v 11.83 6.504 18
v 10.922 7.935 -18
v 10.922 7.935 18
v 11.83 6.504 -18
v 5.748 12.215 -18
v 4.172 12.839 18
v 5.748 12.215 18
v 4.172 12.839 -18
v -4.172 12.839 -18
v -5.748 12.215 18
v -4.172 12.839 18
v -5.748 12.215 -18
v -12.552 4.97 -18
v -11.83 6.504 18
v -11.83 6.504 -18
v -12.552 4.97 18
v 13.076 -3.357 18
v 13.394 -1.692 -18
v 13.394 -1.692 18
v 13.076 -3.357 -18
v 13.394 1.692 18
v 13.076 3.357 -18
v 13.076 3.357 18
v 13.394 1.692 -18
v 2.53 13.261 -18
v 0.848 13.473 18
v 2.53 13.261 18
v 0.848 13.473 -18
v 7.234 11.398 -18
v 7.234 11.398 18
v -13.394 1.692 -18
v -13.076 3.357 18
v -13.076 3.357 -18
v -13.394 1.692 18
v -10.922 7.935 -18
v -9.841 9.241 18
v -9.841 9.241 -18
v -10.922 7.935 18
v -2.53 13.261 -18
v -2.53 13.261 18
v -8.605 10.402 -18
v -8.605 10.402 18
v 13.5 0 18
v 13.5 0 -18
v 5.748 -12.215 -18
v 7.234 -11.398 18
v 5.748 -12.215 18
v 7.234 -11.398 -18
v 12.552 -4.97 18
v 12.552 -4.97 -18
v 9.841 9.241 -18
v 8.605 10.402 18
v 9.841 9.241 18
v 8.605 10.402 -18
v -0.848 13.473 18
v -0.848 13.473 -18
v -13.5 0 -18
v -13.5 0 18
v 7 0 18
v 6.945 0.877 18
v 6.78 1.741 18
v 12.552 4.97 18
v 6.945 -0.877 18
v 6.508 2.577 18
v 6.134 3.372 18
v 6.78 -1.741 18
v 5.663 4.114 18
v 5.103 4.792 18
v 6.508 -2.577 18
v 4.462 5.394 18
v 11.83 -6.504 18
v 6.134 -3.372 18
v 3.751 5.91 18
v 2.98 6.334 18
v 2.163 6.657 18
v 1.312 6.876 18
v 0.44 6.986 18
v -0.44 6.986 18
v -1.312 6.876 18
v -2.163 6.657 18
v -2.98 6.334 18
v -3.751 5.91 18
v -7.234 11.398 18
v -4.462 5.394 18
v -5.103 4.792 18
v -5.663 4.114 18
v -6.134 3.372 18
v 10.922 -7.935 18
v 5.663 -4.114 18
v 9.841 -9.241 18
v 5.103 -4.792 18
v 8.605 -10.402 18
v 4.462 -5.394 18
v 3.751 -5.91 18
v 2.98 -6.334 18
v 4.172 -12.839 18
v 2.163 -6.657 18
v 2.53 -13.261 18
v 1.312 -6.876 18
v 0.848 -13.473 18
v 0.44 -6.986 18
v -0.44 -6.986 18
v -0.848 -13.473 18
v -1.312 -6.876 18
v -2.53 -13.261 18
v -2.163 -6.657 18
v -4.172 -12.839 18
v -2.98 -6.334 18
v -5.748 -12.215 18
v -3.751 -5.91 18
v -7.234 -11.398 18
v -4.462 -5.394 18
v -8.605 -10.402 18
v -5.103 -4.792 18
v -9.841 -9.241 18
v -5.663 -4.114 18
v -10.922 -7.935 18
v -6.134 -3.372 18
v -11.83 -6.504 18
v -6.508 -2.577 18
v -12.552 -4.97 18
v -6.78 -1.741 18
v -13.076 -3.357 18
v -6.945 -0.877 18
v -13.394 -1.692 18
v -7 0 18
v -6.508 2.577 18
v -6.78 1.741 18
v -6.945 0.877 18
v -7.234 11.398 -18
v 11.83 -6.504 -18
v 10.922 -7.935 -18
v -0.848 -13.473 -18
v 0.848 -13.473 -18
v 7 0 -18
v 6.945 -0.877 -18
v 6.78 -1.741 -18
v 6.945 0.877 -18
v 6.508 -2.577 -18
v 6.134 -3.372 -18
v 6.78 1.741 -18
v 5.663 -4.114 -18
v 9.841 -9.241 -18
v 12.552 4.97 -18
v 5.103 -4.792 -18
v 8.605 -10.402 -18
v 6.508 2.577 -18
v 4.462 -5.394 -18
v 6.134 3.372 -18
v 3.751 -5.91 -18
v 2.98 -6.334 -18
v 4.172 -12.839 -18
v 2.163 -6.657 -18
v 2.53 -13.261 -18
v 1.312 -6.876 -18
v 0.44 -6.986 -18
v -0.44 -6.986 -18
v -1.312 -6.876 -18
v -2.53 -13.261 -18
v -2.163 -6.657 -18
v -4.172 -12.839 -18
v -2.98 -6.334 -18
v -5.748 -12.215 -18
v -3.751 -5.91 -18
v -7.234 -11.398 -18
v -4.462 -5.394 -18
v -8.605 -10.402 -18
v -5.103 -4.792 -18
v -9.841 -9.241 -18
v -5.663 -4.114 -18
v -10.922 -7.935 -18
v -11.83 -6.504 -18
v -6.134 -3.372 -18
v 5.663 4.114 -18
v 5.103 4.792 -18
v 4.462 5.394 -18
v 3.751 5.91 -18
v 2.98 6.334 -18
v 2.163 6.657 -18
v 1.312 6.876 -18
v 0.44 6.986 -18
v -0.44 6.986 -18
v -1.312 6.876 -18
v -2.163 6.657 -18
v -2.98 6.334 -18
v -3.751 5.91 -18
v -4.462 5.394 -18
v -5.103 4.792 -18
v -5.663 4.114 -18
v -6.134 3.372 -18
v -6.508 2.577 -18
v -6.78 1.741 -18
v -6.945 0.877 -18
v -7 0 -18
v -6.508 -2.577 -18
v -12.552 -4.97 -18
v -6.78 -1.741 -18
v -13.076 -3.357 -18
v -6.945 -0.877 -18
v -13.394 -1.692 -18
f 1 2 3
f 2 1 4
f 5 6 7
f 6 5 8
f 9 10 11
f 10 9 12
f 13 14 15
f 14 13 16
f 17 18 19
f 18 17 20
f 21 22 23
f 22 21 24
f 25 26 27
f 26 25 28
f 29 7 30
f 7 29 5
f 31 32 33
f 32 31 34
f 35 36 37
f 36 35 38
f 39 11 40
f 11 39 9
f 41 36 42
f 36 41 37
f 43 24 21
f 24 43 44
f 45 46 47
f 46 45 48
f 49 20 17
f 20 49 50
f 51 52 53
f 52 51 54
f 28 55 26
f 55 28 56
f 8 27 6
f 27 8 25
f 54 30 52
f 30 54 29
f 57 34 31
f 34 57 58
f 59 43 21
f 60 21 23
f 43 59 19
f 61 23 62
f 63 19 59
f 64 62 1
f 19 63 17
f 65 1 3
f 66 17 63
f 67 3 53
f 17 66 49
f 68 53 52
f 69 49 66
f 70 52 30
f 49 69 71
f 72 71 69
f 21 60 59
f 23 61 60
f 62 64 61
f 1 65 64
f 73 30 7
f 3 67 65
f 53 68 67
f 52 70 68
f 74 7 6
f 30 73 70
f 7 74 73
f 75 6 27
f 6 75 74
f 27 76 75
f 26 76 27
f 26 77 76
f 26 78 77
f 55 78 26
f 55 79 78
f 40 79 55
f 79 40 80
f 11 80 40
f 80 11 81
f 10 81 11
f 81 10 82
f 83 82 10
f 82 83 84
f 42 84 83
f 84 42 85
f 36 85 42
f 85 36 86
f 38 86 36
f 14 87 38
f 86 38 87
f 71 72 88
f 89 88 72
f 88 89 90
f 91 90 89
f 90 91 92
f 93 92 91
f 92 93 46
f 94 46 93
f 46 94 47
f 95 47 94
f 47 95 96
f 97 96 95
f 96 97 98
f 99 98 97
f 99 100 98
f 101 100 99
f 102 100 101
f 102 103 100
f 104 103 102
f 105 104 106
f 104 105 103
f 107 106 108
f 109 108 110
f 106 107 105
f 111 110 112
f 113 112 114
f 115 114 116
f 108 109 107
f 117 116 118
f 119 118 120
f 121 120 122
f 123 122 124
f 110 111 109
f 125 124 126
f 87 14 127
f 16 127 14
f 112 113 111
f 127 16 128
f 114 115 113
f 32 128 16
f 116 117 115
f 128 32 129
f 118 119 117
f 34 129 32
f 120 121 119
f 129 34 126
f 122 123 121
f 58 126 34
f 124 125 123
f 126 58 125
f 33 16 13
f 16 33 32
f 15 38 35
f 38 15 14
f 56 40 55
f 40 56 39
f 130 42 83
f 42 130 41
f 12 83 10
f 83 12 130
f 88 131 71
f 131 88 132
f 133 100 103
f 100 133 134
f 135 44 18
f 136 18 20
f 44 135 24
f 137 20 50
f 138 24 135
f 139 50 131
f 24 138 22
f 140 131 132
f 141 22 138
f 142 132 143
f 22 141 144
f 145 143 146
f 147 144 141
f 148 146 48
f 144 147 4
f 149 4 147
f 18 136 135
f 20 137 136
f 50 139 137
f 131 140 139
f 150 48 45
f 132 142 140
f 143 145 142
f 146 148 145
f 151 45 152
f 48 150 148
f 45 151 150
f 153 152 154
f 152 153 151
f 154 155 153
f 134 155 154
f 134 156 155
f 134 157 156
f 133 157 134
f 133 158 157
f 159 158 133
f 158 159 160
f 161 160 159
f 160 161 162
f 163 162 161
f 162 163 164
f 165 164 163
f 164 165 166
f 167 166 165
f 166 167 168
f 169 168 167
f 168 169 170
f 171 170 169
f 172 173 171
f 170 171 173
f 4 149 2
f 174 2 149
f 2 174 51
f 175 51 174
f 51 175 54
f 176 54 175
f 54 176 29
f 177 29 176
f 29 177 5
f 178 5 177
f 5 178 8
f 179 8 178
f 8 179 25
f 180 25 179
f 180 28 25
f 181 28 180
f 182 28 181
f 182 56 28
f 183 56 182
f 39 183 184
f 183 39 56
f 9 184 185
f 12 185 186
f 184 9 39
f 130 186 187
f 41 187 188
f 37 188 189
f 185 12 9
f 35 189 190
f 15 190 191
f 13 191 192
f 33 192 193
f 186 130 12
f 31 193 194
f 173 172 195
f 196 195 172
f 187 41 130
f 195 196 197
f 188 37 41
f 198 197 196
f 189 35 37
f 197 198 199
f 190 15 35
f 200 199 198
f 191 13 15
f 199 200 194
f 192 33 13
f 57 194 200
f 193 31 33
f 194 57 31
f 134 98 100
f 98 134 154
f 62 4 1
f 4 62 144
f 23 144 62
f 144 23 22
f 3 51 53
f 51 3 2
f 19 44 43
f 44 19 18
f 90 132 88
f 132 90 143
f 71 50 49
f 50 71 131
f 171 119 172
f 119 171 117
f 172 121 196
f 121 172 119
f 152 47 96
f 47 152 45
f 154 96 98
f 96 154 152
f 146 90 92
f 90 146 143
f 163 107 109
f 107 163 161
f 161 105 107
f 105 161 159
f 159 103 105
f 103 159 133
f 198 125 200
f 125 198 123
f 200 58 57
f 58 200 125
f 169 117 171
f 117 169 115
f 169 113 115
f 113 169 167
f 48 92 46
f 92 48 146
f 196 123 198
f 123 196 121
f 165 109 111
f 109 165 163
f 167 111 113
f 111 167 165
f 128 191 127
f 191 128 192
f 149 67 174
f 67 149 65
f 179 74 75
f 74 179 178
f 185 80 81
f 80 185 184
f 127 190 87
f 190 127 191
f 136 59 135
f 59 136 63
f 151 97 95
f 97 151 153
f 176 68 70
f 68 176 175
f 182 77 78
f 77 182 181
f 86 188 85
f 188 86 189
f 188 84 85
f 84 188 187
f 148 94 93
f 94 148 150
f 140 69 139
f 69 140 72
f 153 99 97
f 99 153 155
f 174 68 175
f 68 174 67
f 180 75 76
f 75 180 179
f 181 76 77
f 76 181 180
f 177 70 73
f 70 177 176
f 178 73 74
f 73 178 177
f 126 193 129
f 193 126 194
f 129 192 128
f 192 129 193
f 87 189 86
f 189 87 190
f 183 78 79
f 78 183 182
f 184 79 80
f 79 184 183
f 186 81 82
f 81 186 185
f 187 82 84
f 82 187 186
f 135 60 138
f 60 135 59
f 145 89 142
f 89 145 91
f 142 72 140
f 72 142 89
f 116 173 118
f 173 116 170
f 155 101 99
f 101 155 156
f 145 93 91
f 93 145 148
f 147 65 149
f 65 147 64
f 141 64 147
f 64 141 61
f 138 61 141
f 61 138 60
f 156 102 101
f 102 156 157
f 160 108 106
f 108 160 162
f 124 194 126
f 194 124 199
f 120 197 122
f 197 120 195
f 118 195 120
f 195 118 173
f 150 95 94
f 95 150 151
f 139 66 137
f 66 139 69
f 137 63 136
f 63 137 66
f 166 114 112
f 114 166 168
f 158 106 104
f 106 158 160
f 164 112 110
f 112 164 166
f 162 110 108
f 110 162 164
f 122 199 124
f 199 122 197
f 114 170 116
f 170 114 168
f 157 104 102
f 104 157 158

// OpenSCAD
$fn = 50;


difference() {
	union() {
		translate(v = [0, 0, -18.0000000000]) {
			cylinder(h = 36, r = 13.5000000000);
		}
	}
	union() {
		translate(v = [0, 0, -100.0000000000]) {
			cylinder(h = 200, r = 7);
		}
	}
}
